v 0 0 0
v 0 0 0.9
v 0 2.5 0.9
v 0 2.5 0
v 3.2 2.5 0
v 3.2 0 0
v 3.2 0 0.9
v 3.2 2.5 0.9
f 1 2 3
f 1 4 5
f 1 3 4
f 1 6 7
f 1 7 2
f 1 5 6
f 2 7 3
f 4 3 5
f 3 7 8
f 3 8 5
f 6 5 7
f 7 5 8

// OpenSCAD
/* Warning, this is a very basic generator with a lot of approximation 
input data : [VDFN, H5A, 3.2x2.5x0.9mm, 6, , B, C04-01007B]
generated by com.zoubworld.electronics.cad.model3d.Basic
Date : Sun Feb 15 10:50:49 CET 2026
*/

//body
color("black")
translate([0,0,0])
cube([3.2,2.5,0.9], center=false);
